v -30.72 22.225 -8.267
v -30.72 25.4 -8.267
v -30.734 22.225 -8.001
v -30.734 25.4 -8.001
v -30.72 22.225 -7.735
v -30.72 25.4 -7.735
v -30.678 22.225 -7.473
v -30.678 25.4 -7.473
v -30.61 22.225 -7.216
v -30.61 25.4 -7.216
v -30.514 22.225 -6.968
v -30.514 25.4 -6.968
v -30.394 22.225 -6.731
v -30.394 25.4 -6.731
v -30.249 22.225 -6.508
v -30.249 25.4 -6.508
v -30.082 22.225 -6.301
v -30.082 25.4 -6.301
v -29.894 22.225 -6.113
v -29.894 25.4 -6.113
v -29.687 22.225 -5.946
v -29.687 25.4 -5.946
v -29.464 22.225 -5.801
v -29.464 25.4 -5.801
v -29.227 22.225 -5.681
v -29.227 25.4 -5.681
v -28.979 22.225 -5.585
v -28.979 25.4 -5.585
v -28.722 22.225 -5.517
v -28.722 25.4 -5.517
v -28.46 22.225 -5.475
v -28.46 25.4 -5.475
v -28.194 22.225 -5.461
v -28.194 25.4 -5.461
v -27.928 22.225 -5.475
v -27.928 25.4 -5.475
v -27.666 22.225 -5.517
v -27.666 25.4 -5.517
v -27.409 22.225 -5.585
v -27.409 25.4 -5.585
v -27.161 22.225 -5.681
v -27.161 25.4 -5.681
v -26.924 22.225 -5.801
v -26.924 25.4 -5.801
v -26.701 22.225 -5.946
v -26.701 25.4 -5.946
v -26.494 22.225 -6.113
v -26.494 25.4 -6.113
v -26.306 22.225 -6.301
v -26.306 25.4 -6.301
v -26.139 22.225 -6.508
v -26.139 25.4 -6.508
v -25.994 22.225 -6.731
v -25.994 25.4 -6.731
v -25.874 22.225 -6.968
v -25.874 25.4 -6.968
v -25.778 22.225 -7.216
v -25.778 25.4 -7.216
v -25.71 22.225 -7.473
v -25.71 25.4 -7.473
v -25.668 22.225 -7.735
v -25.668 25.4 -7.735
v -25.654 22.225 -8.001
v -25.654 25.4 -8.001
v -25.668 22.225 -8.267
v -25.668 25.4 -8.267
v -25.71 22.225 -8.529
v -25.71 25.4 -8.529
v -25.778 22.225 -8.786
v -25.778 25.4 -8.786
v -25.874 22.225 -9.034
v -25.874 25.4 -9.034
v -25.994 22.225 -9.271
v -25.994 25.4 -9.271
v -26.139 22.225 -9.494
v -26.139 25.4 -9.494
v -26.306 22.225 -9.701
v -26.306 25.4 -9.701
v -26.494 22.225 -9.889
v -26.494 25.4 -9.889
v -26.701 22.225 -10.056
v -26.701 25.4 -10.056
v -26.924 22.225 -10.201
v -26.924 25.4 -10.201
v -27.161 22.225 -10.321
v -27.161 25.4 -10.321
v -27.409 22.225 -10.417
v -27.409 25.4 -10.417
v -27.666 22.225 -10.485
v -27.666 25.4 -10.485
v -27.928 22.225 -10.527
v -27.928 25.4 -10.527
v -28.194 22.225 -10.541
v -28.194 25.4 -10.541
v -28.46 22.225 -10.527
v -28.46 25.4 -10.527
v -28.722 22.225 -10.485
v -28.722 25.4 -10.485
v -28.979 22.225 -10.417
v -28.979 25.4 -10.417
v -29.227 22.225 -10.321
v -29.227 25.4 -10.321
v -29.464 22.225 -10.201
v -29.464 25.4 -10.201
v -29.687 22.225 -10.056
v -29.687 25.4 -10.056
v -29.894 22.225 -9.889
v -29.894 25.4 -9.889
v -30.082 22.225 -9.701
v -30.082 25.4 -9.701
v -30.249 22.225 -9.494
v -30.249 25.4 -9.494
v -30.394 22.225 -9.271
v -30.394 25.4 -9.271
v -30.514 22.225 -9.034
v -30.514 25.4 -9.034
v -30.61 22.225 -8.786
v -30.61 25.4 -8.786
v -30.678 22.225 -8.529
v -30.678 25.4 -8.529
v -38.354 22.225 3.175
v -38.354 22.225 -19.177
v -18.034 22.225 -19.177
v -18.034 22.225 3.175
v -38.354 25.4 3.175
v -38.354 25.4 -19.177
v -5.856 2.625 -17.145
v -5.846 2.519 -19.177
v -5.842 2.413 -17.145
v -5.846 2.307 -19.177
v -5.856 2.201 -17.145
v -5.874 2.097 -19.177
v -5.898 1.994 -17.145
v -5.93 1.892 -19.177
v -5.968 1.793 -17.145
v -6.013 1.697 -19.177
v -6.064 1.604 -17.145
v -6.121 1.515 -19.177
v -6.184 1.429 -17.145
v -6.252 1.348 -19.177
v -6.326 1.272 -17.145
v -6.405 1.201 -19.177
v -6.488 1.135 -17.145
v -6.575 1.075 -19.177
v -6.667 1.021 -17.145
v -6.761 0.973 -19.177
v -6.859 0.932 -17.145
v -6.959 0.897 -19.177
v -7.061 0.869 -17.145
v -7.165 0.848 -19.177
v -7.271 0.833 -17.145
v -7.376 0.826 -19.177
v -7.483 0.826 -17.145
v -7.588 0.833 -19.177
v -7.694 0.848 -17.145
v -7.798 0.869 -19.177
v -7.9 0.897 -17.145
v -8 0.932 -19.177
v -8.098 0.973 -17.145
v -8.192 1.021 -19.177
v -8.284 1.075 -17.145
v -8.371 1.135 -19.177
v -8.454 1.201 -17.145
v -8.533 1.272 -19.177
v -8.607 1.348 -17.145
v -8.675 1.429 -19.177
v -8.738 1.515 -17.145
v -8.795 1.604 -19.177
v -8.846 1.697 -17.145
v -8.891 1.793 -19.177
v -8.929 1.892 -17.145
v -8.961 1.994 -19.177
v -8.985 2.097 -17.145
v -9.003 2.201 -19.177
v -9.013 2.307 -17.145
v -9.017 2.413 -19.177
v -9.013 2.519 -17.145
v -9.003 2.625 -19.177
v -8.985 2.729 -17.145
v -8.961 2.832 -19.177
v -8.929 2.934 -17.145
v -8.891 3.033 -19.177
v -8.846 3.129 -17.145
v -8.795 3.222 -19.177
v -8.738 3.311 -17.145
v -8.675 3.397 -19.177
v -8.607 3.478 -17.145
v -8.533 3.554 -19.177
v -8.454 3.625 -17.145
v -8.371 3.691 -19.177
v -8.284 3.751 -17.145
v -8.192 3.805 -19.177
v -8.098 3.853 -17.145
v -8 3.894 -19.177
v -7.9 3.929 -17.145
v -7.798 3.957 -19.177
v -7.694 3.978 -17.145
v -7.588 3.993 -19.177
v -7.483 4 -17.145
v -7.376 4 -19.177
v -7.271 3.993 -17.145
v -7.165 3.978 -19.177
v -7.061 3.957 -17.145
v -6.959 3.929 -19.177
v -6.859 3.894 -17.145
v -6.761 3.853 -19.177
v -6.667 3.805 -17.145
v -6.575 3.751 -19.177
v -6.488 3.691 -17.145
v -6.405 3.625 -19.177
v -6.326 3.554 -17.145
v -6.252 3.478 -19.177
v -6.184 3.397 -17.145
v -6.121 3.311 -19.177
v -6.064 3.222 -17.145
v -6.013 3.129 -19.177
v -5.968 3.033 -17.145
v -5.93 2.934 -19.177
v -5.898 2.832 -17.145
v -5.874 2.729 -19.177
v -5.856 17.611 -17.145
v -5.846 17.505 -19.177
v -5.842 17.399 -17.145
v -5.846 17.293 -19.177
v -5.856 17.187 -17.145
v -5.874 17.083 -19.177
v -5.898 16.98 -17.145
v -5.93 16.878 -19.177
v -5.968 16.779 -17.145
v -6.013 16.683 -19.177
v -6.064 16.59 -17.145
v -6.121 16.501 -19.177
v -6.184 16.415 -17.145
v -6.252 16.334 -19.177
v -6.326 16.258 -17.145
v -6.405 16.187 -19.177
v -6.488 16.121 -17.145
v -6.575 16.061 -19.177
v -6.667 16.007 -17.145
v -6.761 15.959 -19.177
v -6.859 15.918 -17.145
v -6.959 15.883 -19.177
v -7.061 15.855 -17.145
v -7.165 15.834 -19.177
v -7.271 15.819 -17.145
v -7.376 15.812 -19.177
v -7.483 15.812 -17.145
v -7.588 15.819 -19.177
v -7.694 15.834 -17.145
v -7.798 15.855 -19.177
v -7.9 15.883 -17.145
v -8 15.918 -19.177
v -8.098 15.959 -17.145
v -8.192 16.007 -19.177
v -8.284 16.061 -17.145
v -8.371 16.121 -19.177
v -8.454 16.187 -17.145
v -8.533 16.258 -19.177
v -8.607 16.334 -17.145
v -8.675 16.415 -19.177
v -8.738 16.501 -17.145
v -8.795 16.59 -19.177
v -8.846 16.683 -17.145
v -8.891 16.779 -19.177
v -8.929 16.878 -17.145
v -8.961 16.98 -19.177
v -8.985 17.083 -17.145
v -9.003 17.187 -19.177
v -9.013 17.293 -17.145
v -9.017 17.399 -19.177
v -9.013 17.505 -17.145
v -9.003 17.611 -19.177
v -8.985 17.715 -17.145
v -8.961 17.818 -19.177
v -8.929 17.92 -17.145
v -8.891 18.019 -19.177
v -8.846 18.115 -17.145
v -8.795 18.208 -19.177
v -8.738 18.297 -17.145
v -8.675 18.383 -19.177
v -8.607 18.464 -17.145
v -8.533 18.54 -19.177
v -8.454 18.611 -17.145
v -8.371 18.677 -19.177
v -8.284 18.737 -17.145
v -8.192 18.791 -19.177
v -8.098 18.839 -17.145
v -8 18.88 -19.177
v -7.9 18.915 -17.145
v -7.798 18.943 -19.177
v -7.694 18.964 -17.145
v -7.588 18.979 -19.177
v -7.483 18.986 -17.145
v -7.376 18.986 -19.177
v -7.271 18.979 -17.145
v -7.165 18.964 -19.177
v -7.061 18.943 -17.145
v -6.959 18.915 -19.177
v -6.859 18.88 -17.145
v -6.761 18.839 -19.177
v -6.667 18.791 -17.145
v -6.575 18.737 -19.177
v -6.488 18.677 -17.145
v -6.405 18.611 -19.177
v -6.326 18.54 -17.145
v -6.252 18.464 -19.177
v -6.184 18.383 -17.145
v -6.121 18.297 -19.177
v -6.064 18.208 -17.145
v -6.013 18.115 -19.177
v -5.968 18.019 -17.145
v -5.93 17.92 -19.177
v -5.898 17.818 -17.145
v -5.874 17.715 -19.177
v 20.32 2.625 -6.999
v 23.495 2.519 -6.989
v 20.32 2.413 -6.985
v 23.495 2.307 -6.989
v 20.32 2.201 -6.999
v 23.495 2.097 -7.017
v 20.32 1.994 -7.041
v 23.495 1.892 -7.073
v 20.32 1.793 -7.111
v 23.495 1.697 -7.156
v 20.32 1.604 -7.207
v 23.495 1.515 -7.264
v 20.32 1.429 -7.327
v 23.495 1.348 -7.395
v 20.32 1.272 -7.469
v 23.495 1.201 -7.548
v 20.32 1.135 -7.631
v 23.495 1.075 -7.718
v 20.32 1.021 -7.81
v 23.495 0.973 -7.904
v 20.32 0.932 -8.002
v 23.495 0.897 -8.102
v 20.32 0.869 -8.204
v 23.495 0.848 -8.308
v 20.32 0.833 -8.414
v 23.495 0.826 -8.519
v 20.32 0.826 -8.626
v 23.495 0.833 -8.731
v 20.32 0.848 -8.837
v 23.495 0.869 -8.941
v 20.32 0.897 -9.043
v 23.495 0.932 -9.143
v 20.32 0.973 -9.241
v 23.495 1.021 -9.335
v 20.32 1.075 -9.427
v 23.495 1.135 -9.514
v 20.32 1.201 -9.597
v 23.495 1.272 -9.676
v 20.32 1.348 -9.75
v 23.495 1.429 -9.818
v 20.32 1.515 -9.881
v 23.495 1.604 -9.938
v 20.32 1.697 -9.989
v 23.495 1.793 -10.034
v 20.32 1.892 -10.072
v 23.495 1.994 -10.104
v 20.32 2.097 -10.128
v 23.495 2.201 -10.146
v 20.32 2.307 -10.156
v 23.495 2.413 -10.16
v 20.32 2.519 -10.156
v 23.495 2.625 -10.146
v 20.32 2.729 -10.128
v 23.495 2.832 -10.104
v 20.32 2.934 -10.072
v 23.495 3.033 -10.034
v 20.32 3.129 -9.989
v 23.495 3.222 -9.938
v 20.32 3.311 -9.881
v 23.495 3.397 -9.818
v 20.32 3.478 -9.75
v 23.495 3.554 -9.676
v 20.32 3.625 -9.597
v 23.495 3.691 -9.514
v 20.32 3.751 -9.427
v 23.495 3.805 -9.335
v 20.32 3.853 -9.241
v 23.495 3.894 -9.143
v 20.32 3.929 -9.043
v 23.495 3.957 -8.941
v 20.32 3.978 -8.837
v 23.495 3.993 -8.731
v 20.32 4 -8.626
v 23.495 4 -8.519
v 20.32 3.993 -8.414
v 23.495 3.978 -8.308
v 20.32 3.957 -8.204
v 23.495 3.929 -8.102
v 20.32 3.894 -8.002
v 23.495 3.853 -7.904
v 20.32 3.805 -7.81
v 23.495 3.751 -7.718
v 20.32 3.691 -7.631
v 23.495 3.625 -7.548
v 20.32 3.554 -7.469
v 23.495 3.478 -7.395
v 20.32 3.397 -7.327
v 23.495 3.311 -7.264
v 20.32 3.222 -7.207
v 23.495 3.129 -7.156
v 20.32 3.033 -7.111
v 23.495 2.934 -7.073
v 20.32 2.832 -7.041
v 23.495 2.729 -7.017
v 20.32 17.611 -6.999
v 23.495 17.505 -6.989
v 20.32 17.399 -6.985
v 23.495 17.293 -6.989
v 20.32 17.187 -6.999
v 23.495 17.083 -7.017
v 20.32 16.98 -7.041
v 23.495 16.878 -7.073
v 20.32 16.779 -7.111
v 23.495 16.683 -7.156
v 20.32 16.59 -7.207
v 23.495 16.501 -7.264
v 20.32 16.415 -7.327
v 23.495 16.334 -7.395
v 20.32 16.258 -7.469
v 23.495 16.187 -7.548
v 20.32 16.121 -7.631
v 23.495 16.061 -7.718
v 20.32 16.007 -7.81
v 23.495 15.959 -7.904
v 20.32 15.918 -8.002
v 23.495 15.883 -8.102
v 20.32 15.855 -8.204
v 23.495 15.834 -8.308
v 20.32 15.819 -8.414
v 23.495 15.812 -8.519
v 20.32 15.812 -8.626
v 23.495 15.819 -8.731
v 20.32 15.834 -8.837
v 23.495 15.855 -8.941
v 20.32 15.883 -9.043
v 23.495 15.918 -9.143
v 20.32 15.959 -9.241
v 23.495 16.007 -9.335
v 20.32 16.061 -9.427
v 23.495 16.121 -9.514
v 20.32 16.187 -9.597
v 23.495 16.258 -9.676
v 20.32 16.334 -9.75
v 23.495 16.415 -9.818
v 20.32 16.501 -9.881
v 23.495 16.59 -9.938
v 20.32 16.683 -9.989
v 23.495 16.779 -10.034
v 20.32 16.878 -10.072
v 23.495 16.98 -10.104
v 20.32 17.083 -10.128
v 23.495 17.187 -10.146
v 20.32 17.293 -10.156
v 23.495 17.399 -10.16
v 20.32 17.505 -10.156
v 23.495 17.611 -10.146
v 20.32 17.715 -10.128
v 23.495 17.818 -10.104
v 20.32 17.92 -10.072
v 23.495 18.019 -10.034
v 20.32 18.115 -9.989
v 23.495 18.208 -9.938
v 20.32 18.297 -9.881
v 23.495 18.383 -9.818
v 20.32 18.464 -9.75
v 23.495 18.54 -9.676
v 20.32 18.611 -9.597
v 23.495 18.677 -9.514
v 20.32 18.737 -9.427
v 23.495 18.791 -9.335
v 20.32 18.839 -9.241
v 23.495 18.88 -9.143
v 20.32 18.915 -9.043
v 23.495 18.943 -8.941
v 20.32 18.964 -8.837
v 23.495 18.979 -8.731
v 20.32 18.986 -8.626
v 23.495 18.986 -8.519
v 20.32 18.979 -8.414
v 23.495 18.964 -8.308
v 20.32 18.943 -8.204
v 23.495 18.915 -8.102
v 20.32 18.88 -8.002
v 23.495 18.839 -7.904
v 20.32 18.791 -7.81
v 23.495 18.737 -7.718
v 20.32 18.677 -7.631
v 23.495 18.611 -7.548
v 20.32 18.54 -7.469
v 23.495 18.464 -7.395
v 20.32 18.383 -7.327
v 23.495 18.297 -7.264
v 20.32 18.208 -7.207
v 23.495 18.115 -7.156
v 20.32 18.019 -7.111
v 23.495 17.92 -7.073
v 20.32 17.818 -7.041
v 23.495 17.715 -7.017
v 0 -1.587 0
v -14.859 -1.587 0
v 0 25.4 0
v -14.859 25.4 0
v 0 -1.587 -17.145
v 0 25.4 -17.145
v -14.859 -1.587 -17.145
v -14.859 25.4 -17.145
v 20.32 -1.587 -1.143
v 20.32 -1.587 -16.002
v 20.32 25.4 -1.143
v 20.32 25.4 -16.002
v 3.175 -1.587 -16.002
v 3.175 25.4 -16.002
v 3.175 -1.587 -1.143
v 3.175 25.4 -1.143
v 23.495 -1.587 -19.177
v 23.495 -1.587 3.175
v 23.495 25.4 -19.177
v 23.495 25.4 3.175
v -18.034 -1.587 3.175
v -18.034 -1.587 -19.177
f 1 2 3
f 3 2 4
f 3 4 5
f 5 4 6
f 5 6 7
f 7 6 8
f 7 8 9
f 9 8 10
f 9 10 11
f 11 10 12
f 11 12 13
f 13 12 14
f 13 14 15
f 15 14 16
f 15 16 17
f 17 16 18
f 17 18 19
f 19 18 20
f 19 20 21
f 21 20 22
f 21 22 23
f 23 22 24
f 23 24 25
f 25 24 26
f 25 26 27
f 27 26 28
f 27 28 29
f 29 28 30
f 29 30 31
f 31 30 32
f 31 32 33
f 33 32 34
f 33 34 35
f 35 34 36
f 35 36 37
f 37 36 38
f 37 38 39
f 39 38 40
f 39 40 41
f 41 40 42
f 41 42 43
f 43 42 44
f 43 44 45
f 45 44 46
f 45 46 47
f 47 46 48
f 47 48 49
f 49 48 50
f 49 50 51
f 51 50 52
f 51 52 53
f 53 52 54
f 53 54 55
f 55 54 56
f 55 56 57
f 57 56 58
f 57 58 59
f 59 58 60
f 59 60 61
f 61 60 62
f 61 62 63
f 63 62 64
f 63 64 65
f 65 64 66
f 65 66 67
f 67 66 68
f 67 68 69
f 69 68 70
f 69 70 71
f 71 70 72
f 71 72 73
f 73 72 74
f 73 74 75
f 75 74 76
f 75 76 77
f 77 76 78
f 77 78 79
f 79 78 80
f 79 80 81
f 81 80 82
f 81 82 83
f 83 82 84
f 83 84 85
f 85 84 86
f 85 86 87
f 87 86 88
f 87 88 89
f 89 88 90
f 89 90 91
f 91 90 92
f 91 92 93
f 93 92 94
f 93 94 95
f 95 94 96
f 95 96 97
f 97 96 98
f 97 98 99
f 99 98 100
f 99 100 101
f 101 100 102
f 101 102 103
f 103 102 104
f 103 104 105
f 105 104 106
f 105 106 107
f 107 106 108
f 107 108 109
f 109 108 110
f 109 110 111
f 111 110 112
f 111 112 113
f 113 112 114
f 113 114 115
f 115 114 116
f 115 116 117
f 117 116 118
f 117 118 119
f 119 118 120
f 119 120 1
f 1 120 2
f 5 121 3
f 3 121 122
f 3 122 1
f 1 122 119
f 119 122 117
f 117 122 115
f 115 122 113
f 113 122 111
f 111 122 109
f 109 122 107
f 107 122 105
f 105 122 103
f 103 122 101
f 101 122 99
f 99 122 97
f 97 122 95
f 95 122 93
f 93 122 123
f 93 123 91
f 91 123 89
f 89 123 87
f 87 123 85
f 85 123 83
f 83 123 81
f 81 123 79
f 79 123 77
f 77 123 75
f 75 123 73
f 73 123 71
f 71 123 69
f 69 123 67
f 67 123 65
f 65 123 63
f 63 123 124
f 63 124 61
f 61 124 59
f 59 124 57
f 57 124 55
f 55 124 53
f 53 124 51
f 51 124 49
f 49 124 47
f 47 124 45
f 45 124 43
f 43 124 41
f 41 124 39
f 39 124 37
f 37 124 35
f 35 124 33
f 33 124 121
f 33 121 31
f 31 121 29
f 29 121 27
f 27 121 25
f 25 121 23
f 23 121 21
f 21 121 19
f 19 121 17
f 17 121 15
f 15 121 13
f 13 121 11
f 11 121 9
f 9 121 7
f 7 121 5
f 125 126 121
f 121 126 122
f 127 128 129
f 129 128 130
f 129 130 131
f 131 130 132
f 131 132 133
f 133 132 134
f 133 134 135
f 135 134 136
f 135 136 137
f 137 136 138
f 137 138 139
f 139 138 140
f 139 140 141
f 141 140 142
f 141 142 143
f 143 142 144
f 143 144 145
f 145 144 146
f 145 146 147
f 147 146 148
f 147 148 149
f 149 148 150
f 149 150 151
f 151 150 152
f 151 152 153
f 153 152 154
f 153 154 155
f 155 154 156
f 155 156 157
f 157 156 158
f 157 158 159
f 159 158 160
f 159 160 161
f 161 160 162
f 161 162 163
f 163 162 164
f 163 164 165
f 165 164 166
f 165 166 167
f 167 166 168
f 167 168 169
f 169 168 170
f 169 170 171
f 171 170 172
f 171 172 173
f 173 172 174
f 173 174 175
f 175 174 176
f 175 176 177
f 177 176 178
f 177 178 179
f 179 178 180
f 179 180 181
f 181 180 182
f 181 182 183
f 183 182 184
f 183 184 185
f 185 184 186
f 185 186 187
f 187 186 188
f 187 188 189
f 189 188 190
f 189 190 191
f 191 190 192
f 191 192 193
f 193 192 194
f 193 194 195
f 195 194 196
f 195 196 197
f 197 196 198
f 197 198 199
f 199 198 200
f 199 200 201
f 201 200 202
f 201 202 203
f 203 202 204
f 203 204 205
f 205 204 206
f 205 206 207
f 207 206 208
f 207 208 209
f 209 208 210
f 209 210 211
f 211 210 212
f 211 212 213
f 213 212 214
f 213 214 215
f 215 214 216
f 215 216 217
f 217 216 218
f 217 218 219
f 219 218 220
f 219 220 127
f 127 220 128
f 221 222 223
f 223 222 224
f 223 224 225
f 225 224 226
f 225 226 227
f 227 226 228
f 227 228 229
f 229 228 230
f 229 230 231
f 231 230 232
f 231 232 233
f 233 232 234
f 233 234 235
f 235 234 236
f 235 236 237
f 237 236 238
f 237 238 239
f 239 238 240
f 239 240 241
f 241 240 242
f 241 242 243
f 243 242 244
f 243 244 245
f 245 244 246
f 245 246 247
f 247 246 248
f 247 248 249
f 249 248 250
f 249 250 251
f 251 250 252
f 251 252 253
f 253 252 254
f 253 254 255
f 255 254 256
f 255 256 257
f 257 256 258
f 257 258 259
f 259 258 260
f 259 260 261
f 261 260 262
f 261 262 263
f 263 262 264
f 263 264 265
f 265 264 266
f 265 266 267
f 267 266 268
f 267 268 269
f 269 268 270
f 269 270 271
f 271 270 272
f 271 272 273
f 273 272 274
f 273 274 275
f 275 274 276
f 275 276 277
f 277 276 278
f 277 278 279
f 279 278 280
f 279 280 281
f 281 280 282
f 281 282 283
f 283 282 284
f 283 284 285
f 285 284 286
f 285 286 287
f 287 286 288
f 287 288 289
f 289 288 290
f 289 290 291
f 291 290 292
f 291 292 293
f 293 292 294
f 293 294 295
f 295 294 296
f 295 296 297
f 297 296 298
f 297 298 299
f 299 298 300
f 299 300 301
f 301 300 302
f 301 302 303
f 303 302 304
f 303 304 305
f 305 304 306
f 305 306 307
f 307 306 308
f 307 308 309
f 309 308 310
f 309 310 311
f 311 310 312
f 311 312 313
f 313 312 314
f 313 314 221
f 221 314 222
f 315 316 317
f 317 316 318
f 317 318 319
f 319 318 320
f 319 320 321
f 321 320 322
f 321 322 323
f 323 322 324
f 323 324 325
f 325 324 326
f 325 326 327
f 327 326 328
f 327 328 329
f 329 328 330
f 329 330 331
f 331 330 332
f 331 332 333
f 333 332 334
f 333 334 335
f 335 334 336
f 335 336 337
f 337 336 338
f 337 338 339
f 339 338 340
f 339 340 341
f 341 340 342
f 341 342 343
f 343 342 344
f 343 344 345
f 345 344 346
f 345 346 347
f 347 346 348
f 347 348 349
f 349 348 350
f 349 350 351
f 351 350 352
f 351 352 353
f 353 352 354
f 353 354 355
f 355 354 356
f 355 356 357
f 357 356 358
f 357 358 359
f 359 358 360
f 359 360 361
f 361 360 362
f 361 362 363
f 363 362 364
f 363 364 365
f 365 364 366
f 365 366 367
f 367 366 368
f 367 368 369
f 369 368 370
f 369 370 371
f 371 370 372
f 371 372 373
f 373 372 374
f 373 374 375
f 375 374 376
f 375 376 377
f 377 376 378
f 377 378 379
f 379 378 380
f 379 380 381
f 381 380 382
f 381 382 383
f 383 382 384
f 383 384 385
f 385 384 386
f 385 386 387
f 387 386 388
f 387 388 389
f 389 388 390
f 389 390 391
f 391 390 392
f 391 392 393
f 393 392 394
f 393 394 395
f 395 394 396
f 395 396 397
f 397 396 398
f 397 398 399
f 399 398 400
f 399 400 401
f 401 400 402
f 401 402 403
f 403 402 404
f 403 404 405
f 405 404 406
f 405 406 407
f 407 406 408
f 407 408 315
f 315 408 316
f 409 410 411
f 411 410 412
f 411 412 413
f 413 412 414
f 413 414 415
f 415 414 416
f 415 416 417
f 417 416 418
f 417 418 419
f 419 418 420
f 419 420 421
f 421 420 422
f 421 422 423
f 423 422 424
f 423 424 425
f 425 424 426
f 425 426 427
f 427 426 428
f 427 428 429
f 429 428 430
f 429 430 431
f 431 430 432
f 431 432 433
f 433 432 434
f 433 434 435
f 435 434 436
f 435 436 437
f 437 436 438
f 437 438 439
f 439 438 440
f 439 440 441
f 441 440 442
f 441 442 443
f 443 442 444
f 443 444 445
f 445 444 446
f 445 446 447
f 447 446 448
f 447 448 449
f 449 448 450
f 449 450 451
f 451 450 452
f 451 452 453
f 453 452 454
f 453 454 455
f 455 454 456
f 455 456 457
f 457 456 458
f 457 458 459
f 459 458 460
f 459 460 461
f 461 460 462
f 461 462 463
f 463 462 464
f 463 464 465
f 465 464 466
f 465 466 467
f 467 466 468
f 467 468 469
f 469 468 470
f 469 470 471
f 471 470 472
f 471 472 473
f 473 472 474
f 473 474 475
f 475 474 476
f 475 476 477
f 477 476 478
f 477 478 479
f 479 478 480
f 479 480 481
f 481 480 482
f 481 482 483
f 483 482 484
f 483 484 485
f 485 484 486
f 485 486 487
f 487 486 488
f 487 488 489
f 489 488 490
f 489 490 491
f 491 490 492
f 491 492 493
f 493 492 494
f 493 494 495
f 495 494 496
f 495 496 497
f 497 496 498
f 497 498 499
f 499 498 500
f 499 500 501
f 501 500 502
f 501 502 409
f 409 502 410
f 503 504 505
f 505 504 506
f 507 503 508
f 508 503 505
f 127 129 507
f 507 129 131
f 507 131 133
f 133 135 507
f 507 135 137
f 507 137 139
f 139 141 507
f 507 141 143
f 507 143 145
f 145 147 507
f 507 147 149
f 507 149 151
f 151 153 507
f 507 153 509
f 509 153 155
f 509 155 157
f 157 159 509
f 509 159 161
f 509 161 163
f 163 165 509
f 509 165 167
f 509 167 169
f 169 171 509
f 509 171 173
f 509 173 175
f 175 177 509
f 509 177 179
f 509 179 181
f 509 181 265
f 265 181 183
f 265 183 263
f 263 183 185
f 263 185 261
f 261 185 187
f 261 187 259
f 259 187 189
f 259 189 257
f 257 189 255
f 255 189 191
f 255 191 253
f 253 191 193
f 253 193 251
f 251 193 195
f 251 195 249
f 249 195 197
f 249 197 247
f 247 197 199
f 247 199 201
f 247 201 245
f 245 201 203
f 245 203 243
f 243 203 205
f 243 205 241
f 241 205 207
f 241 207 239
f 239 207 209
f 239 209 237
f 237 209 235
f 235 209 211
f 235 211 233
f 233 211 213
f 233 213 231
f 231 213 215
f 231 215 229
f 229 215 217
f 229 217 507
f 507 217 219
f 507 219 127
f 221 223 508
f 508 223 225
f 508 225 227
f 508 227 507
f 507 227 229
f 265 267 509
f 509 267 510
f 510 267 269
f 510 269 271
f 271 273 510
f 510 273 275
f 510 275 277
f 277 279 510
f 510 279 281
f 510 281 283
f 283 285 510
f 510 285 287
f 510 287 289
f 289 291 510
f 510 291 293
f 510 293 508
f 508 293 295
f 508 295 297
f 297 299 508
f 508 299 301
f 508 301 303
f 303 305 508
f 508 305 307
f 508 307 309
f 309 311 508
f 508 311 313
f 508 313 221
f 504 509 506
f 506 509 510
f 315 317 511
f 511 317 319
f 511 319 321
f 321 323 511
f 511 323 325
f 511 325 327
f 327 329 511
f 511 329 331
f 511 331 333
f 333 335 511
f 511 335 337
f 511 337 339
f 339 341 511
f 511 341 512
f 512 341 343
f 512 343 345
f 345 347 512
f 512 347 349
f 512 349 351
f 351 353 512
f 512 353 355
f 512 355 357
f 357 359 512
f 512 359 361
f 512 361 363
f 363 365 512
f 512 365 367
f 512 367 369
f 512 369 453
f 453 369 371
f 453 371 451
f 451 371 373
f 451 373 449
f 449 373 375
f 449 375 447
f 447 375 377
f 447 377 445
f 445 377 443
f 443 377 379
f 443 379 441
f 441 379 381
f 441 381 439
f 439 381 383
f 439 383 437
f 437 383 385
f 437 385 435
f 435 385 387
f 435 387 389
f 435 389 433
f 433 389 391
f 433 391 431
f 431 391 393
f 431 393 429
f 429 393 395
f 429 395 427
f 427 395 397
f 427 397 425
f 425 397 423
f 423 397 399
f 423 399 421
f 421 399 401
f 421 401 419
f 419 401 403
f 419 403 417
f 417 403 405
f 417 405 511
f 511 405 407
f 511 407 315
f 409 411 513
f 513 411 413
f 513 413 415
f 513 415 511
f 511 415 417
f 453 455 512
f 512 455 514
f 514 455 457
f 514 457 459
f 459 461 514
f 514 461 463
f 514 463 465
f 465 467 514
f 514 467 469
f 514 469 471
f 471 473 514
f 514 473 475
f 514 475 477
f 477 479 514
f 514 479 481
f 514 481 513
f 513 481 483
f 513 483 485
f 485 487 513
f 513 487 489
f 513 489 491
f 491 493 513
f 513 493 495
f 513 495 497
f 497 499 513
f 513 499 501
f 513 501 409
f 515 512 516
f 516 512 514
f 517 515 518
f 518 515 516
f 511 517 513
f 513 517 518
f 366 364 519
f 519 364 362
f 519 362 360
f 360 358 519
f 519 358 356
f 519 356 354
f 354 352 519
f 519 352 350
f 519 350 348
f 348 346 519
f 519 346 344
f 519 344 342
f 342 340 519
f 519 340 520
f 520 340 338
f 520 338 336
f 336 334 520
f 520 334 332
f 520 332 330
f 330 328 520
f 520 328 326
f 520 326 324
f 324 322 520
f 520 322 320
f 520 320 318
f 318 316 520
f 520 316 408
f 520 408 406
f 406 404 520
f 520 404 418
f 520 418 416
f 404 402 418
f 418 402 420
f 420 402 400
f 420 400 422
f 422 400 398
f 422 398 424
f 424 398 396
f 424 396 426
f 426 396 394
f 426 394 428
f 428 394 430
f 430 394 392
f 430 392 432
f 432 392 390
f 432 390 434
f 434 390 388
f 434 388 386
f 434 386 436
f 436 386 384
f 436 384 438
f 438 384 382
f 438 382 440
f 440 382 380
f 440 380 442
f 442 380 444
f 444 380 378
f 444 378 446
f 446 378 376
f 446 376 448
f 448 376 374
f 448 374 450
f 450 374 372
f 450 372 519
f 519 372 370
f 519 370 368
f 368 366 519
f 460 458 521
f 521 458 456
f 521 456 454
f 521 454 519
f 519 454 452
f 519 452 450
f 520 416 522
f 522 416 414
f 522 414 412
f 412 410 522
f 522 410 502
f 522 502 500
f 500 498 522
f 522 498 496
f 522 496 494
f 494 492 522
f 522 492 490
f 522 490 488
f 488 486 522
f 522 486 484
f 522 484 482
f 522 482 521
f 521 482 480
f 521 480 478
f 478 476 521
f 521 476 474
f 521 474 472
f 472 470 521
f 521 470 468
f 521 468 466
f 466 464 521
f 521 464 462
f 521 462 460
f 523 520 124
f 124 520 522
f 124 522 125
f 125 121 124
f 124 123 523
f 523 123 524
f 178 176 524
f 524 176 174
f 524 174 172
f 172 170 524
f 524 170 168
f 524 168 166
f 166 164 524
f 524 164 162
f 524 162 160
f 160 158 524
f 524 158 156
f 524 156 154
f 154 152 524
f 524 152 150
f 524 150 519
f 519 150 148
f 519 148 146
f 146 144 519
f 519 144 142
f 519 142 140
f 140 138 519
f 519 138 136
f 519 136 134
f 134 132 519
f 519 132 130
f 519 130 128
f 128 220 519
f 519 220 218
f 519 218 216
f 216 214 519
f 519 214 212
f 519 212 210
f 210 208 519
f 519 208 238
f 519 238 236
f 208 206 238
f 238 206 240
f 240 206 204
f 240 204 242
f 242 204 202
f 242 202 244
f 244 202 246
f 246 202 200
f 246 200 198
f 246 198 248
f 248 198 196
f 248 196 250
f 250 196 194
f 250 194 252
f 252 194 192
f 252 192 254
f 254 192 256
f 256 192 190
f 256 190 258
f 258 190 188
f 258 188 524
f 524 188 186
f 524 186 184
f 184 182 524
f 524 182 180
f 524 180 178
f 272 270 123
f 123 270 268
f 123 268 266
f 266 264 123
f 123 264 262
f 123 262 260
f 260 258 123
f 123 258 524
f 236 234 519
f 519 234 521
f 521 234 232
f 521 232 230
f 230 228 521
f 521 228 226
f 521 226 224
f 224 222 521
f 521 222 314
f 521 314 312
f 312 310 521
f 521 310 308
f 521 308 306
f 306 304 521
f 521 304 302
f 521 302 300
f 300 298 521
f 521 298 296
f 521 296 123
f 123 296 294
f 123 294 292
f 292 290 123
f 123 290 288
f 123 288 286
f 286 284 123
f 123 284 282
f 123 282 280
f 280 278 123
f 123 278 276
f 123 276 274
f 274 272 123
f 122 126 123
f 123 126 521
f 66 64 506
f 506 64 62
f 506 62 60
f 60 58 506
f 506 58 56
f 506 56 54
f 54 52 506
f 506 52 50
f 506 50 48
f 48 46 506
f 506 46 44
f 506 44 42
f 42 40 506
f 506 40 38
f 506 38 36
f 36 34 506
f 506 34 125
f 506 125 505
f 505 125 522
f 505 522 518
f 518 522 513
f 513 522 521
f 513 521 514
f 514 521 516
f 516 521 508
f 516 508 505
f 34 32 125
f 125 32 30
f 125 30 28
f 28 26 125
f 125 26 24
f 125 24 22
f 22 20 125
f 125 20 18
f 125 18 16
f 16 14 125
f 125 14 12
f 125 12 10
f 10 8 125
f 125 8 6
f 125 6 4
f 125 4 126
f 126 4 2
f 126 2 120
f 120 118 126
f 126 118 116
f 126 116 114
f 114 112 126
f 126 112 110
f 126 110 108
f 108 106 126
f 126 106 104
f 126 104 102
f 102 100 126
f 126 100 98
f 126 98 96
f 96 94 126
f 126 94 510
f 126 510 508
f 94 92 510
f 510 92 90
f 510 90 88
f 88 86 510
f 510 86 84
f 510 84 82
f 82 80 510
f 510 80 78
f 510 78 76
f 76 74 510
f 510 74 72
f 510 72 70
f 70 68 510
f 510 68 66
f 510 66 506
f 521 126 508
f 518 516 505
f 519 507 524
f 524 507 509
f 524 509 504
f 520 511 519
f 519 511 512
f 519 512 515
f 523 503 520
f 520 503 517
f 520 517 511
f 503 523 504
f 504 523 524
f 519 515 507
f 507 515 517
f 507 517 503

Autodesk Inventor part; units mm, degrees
ref_plane "YZ Plane" through (0, 0, 0) normal (1, 0, 0) x (0, 1, 0)
ref_plane "XZ Plane" through (0, 0, 0) normal (0, 1, 0) x (-1, 0, 0)
ref_plane "XY Plane" through (0, 0, 0) normal (0, 0, 1) x (1, 0, 0)
sketch "Sketch1" plane through (0, 0, 0) normal (0, 1, 0) x (-1, 0, 0)
  line L0 (0, 0) -> (14.859, 0)
  line L1 (14.859, 0) -> (14.859, -17.145)
  line L2 (14.859, -17.145) -> (0, -17.145)
  line L3 (0, -17.145) -> (0, 0)
  line L4 (0, 0) -> (0, -1.143)
  line L5 (0, -1.143) -> (-3.175, -1.143)
  line L6 (-3.175, -1.143) -> (-20.32, -1.143)
  line L7 (-20.32, -1.143) -> (-20.32, -16.002)
  line L8 (-20.32, -16.002) -> (-3.175, -16.002)
  line L9 (-3.175, -16.002) -> (-3.175, -1.143)
  line L10 (14.859, 0) -> (14.859, 3.175)
  line L11 (14.859, 3.175) -> (18.034, 3.175)
  line L12 (-20.32, -1.143) -> (-23.495, -1.143)
  line L13 (-20.32, -16.002) -> (-20.32, -19.177)
  line L14 (-20.32, -19.177) -> (-23.495, -19.177)
  line L15 (18.034, 3.175) -> (-23.495, 3.175)
  line L16 (-23.495, 3.175) -> (-23.495, -19.177)
  line L17 (-23.495, -19.177) -> (18.034, -19.177)
  line L18 (18.034, -19.177) -> (18.034, 3.175)
  dimension "d0" = 14.859
  dimension "d1" = 17.145
  dimension "d2" = 1.143
  dimension "d3" = 3.175
  dimension "d4" = 17.145
  dimension "d5" = 14.859
  dimension "d6" = 3.175
  dimension "d7" = 3.175
  dimension "d8" = 3.175
  dimension "d34" = 3.175
  dimension "d35" = 3.175
extrude "Extrusion1" add sketch "Sketch1" along normal blind 25.4 contours L3 L5 L6 L12 L16 L15 L10 L0 | L10 L11 L18 L17 L13 L8 L9 L5 L3 L2 L1 | L7 L13 L14 L16 L12
sketch "Sketch2" plane through (23.495, 0, 1.5875) normal (1, 0, 0) x (0, 0, -1)
  line L0 (17.5895, 25.4) -> (2.7305, 25.4) projected
  line L1 (10.16, 25.4) -> (10.16, 17.399)
  circle A0 centre (10.16, 17.399) radius 1.5875
  line L2 (10.16, 17.399) -> (10.16, 2.413)
  circle A1 centre (10.16, 2.413) radius 1.5875
  point P0 (1.5875, 0)
  dimension "d13" = 8.001
  dimension "d14" = 3.175
  dimension "d15" = 14.986
  dimension "d16" = 3.175
extrude "Extrusion2" cut sketch "Sketch2" against normal blind 9.525
sketch "Sketch3" plane through (19.05, 0, -19.177) normal (0, 0, -1) x (-1, 0, 0)
  line L0 (33.909, 0) -> (33.909, 25.4) projected
  line L1 (19.05, 0) -> (19.05, 25.4) projected
  line L2 (33.909, 25.4) -> (19.05, 25.4)
  line L3 (26.4795, 25.4) -> (26.4795, 17.399)
  circle A0 centre (26.4795, 17.399) radius 1.5875
  line L4 (26.4795, 17.399) -> (26.4795, 2.413)
  circle A1 centre (26.4795, 2.413) radius 1.5875
  dimension "d19" = 8.001
  dimension "d20" = 3.175
  dimension "d21" = 14.986
  dimension "d22" = 3.175
extrude "Extrusion3" cut sketch "Sketch3" against normal blind 9.525
move faces "Move1" translate (0, -1.5875, 0) faces at (1.8203, 0, 2.1167)
sketch "Sketch4" plane through (-18.034, 25.4, -17.4625) normal (-1, 0, 0) x (0, 0, 1)
  line L0 (19.05, 0) -> (0, 0)
  line L1 (20.6375, -26.9875) -> (20.6375, 0) projected
  line L2 (-1.7145, -26.9875) -> (-1.7145, 0) projected
  line L3 (20.6375, 0) -> (-1.7145, 0)
  line L4 (-1.7145, 0) -> (-1.7145, -3.175)
  line L5 (-1.7145, -3.175) -> (20.6375, -3.175)
  line L6 (20.6375, -3.175) -> (20.6375, 0)
  point P0 (17.4625, -25.4)
  point P1 (20.6375, -3.175)
  dimension "d36" = 3.175
extrude "Extrusion4" add sketch "Sketch4" along normal blind 20.32
sketch "Sketch5" plane through (-15.1765, 25.4, -17.4625) normal (0, -1, 0) x (1, 0, 0)
  line L0 (-23.1775, 20.6375) -> (-23.1775, -1.7145) projected
  line L1 (0.3175, 17.4625) -> (0.3175, 0.3175) projected
  line L2 (-23.1775, 9.4615) -> (0.3175, 9.4615) construction
  line L3 (-23.1775, 9.4615) -> (-2.8575, 9.4615)
  line L4 (-2.8575, -1.7145) -> (-2.8575, 20.6375) projected
  circle A0 centre (-13.0175, 9.4615) radius 2.54
  point P0 (15.1765, 17.4625)
  dimension "d39" = 5.08
extrude "Extrusion5" cut sketch "Sketch5" along normal blind 14.605
properties part number "PluckMount"
